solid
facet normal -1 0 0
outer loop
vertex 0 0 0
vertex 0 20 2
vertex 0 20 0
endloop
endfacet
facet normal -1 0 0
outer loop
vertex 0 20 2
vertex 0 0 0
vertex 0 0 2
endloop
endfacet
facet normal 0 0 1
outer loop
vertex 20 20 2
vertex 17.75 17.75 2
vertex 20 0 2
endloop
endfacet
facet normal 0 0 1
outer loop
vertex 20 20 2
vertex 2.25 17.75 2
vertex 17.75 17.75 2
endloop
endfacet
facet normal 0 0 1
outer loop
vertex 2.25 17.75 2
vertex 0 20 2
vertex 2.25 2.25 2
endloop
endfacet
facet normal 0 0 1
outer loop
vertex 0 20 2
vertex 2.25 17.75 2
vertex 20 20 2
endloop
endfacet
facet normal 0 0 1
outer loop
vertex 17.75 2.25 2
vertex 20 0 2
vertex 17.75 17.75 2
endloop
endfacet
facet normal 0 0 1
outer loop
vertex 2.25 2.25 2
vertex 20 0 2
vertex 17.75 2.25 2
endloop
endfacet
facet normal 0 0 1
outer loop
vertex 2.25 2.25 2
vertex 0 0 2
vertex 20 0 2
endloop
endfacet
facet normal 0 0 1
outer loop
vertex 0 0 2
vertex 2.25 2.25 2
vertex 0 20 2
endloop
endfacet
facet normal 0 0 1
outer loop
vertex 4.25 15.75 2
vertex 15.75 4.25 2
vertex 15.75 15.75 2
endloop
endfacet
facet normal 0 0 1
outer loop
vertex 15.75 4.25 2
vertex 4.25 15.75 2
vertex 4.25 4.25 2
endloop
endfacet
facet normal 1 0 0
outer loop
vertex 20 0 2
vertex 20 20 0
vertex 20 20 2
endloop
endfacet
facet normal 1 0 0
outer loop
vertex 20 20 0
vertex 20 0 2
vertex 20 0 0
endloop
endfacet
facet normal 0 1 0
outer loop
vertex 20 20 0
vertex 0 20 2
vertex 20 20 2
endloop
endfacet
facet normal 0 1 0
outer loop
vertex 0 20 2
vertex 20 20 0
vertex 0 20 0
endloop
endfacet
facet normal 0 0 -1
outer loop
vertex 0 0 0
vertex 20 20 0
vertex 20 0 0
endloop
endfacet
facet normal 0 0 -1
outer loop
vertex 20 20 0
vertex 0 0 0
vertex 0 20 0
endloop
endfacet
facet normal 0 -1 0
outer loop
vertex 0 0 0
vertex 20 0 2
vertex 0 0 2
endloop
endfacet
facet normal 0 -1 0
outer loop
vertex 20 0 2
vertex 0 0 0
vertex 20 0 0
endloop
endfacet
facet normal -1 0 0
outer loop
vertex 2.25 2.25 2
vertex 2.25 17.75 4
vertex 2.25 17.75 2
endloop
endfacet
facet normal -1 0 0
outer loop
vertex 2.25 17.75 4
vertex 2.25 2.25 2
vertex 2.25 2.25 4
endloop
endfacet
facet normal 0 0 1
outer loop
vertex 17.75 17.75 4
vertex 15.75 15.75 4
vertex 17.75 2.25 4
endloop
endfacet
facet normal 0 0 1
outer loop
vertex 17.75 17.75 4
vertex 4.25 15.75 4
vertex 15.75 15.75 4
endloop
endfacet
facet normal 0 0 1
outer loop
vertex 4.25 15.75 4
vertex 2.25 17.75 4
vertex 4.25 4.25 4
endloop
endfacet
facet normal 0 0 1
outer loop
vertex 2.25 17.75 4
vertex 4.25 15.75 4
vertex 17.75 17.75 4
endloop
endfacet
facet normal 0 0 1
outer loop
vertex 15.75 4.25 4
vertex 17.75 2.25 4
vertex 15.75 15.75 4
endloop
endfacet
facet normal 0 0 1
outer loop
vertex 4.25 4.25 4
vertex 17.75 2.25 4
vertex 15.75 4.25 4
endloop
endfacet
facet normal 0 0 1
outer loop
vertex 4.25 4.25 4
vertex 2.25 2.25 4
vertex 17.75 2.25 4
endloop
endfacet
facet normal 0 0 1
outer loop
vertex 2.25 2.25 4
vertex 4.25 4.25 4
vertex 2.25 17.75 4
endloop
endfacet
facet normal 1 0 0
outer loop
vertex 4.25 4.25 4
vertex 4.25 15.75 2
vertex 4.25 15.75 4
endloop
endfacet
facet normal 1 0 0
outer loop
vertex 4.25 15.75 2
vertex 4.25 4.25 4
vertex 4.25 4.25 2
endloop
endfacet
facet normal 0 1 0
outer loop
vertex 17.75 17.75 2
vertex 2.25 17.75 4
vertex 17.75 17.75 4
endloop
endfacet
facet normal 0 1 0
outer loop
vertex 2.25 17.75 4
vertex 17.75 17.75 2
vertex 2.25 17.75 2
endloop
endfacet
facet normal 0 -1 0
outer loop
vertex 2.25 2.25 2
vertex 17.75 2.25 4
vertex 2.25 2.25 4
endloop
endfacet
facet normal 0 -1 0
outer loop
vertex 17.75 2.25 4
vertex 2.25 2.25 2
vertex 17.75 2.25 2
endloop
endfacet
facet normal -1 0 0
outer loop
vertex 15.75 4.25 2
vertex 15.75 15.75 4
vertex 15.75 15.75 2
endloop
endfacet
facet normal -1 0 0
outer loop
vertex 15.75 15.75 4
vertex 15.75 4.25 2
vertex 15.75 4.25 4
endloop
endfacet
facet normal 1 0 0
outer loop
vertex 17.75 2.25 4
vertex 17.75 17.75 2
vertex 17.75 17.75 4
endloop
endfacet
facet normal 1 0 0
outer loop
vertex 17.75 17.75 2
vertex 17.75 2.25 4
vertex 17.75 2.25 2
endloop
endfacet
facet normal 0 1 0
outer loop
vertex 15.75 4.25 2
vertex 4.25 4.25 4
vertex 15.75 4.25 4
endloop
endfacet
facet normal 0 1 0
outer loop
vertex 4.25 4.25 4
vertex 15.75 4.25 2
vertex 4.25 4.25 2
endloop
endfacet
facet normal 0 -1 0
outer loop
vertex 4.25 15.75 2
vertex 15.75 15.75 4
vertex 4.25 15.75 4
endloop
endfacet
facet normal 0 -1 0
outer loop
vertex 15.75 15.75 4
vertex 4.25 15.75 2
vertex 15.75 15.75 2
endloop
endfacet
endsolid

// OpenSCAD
/*
Crie uma tampa para a caixa do exercício 2 que encaixe por dentro e já considere uma folga.
Dica: Considere a folga como um parâmetro.
*/
Espessura = 2;
Largura = 20;       //dimensão na direção X
Comprimento = 20;   //dimensão na direção Y
Folga = 0.25;         //Folga

//base
cube([Largura,Comprimento,Espessura]);

//lateral esquerda
translate([1,1,0]*(Espessura+Folga))
    cube([Espessura,Comprimento-2*(Folga+Espessura),2*Espessura]);

//lateral direita
translate([Largura - 2*Espessura - Folga,Espessura+Folga,0]) 
    cube([Espessura,Comprimento-2*(Folga+Espessura),2*Espessura]);

//frente
translate([1,1,0]*(Espessura+Folga))
    cube([Largura-2*(Folga+Espessura),Espessura,2*Espessura]);

//fundo
translate([Espessura+Folga,Comprimento - 2*Espessura - Folga,0]) 
    cube([Largura-2*(Folga+Espessura),Espessura,2*Espessura]);
